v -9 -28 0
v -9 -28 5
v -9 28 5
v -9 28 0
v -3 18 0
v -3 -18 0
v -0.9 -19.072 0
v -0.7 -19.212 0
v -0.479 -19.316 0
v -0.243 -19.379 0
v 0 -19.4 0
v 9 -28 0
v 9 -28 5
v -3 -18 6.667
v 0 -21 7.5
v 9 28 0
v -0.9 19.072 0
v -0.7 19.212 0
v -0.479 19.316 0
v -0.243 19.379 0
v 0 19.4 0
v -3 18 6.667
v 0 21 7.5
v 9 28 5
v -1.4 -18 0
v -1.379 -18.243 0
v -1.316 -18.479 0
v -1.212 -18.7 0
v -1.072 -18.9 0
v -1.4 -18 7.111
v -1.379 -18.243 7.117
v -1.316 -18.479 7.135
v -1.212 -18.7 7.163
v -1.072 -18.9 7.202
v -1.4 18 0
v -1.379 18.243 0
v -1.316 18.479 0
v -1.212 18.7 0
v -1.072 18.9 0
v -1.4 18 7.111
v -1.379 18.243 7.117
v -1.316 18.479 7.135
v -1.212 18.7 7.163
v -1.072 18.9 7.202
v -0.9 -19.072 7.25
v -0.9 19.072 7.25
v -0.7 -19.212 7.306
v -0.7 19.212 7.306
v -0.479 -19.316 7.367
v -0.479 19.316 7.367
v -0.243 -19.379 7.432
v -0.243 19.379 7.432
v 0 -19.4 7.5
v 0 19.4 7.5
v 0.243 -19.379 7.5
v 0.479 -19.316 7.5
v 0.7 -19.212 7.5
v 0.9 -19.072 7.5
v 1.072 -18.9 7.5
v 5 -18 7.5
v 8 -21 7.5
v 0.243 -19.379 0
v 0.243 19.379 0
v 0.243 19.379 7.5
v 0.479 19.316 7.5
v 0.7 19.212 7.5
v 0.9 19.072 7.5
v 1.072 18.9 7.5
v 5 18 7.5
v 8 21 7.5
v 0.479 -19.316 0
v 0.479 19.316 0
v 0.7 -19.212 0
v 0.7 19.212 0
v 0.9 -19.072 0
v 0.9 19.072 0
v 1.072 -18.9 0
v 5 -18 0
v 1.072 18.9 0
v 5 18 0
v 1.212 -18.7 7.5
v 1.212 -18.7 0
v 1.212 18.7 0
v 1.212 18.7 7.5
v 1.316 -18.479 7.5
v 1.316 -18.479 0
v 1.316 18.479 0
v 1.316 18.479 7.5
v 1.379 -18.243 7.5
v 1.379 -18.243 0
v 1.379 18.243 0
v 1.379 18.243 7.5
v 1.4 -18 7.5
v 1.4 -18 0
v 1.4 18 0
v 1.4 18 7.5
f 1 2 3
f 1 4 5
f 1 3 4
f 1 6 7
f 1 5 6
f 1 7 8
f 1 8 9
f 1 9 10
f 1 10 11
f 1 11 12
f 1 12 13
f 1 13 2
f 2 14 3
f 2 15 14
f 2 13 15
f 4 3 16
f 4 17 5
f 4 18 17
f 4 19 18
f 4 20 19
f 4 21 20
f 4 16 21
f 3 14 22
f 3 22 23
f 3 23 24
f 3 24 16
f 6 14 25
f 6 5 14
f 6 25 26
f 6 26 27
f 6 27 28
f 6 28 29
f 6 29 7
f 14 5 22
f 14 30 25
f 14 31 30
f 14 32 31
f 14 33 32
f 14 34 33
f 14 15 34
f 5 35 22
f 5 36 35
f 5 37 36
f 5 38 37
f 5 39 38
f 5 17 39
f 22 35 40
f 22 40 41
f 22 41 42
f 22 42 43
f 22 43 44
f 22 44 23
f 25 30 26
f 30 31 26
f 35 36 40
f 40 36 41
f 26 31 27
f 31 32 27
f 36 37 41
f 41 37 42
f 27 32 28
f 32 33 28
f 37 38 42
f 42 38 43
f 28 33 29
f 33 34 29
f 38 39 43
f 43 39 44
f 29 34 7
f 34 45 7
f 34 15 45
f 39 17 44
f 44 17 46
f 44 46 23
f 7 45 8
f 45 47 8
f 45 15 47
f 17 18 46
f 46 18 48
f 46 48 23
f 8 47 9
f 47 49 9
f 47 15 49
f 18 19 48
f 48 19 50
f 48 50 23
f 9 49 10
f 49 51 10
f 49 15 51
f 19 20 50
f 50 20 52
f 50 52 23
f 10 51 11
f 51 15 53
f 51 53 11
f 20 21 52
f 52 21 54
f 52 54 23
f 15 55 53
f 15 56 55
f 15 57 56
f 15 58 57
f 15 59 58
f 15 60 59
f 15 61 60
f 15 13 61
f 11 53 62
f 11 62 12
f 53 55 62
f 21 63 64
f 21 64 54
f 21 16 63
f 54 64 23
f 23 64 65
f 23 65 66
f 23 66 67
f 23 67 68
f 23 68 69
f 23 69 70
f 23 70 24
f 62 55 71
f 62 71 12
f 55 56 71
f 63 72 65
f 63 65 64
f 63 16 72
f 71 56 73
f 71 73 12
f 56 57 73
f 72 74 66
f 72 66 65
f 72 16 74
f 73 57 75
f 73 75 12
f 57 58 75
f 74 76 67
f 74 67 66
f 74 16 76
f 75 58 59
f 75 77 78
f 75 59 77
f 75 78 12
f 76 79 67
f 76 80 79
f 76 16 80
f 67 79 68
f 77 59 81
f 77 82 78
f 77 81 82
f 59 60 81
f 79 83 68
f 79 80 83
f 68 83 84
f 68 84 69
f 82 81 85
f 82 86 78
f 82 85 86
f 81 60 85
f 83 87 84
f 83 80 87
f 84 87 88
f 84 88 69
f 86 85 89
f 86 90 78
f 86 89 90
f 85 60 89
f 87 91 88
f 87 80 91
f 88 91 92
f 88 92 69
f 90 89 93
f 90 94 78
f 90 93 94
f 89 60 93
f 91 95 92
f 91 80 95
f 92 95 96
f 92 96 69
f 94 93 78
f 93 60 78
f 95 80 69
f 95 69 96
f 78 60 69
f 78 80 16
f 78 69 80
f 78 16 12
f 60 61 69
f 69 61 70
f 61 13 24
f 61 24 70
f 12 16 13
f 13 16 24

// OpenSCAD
// ==============================================================================
// 07. TAY NẮM MÓC MỞ NẮP NÓC XE (ORANGE ROOF CANOPY PULL HANDLE)
// BỘ PHẬN IN 3D SỐ 7 - SỐ LƯỢNG CẦN IN: 1 CÁI
// ĐÃ ĐƯỢC ĐẶT NẰM PHẲNG TRÊN MẶT BÀN IN (Z = 0)
// VẬT LIỆU KHUYÊN DÙNG: PLA / PETG MÀU CAM HOẶC ĐỎ NỔI BẬT
// ==============================================================================
$fn = 36;

module Roof_Handle_Printable() {
    translate([0, 0, 2.5]) {
        difference() {
            hull() {
                cube([18.0, 56.0, 5.0], center = true);
                translate([4.0, 0, 4.0]) cube([8.0, 42.0, 2.0], center = true);
            }
            translate([1.0, 0, 1.0]) cube([8.0, 36.0, 8.0], center = true);
            // 2 Lỗ ốc chìm M2.5 để bắt cố định vào nắp
            translate([0, -18.0, 0]) cylinder(d=2.8, h=10, center=true);
            translate([0, 18.0, 0]) cylinder(d=2.8, h=10, center=true);
        }
    }
}

Roof_Handle_Printable();
